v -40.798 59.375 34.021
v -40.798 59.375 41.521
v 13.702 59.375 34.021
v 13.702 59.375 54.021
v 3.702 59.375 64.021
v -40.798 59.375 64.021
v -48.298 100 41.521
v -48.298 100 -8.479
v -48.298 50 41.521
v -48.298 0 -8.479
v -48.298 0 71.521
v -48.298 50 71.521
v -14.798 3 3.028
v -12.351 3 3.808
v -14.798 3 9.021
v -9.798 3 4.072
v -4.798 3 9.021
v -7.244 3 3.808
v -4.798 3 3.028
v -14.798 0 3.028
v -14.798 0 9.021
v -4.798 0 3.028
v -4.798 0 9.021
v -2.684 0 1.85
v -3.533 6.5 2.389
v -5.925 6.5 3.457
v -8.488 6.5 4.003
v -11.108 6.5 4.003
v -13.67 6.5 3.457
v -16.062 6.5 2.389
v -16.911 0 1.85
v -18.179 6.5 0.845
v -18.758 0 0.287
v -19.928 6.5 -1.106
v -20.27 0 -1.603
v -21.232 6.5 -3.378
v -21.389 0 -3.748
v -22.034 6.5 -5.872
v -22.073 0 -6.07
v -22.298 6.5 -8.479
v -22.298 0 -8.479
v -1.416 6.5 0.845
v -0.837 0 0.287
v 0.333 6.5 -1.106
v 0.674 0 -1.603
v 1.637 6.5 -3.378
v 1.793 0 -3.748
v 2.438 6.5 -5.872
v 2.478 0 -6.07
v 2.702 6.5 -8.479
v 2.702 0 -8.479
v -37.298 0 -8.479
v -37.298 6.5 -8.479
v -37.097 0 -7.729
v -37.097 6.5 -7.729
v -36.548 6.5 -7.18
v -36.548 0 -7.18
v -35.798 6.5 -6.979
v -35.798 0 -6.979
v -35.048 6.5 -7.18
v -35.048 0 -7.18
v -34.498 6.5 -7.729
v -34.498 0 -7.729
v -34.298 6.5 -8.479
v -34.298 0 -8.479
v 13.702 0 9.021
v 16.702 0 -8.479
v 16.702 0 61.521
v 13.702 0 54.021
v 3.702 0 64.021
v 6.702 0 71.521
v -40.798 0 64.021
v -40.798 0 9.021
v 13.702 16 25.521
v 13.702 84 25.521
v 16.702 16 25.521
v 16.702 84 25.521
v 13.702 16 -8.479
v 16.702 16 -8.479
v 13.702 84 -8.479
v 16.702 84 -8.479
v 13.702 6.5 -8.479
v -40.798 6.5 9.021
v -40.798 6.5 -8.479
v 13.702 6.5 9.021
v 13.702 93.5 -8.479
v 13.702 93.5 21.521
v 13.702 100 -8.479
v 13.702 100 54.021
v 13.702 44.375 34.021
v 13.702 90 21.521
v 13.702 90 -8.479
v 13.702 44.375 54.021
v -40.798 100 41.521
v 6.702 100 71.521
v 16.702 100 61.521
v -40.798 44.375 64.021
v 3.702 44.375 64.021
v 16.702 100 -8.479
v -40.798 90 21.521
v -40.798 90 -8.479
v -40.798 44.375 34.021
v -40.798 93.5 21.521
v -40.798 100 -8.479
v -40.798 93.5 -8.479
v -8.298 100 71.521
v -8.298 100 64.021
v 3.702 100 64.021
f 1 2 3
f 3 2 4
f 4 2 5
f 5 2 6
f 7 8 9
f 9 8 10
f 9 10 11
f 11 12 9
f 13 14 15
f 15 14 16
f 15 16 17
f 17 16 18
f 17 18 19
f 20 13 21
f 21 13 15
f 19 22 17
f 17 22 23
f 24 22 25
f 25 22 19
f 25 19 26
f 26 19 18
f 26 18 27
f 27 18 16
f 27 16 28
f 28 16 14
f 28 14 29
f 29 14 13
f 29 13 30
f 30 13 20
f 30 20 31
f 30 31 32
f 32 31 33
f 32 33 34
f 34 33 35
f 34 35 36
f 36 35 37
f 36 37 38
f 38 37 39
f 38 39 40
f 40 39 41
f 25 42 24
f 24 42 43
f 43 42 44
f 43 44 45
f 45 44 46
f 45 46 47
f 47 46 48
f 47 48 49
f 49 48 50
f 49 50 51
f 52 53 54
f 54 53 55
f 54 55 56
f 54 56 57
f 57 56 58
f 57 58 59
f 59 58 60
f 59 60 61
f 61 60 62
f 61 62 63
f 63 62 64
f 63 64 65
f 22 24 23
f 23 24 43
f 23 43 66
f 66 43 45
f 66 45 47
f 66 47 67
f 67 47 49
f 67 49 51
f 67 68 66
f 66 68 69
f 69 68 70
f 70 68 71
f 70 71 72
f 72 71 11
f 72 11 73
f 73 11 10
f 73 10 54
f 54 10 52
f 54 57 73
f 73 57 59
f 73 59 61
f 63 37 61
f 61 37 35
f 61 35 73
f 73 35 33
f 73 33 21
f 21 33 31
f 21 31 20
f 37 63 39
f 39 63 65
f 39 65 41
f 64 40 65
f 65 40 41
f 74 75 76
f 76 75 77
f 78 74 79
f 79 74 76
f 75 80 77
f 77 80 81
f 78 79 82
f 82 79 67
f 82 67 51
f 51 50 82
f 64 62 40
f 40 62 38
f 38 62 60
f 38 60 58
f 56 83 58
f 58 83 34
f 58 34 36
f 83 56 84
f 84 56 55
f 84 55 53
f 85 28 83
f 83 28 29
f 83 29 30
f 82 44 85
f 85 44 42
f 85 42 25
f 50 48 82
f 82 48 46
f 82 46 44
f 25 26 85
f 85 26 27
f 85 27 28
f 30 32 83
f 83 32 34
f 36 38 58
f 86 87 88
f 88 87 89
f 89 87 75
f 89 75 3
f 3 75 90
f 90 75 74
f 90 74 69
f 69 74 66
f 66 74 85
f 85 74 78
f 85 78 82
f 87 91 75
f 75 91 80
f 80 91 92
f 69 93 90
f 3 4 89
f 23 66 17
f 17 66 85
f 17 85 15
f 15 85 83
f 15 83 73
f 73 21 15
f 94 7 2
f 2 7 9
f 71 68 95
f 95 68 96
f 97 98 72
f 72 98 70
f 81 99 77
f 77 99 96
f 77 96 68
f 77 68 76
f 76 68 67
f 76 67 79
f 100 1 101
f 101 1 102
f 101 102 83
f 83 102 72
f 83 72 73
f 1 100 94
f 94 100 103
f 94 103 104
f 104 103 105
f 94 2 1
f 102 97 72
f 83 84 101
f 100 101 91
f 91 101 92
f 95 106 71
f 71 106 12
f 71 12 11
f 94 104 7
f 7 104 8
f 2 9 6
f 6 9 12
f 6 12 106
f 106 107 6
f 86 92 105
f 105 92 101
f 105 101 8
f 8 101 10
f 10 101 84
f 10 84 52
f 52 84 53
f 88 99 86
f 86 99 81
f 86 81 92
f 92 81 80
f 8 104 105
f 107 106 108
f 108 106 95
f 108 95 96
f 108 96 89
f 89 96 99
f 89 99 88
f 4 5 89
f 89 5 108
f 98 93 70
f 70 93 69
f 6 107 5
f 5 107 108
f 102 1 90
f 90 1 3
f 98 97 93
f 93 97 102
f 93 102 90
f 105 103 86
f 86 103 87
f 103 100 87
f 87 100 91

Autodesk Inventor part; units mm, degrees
ref_plane "YZ Plane" through (0, 0, 0) normal (1, 0, 0) x (0, 1, 0)
ref_plane "XZ Plane" through (0, 0, 0) normal (0, 1, 0) x (-1, 0, 0)
ref_plane "XY Plane" through (0, 0, 0) normal (0, 0, 1) x (1, 0, 0)
sketch "Sketch1" plane through (0, 0, 0) normal (0, 1, 0) x (-1, 0, 0)
  line L0 (48.2977, 71.5211) -> (-16.7023, 71.5211)
  line L1 (-16.7023, 71.5211) -> (-16.7023, -8.4789)
  line L2 (-16.7023, -8.4789) -> (48.2977, -8.4789)
  line L3 (48.2977, -8.4789) -> (48.2977, 71.5211)
  arc A0 (22.2975, -8.4789) -> (-2.7023, -8.4789) centre (9.7976, -8.4281) ccw
  line L4 (-16.7023, -8.4789) -> (-13.7023, -8.4789)
  line L5 (-13.7023, -8.4789) -> (-13.7023, 71.5211)
  line L6 (-13.7023, 71.5211) -> (-16.7023, 71.5211)
  line L7 (-16.7023, 71.5211) -> (-16.7023, -8.4789)
  line L8 (48.2977, -8.4789) -> (40.7977, -8.4789)
  line L9 (40.7977, -8.4789) -> (40.7977, 71.5211)
  line L10 (40.7977, 71.5211) -> (48.2977, 71.5211)
  line L11 (48.2977, 71.5211) -> (48.2977, -8.4789)
  line L12 (-13.7023, -8.4789) -> (40.7977, -8.4789)
  line L13 (40.7977, -8.4789) -> (40.7977, 9.0211)
  line L14 (40.7977, 9.0211) -> (-13.7023, 9.0211)
  line L15 (-13.7023, 9.0211) -> (-13.7023, -8.4789)
  line L16 (-13.7023, 71.5211) -> (40.7977, 71.5211)
  line L17 (40.7977, 71.5211) -> (40.7977, 64.0211)
  line L18 (40.7977, 64.0211) -> (-13.7023, 64.0211)
  line L19 (-13.7023, 64.0211) -> (-13.7023, 71.5211)
  line L20 (-16.7023, 61.5211) -> (-6.7023, 71.5211)
  line L21 (-16.7023, 61.5211) -> (-16.7023, 71.5211)
  line L22 (-6.7023, 71.5211) -> (-13.7023, 64.5211)
  line L23 (-13.7023, 64.0211) -> (-13.7023, 64.5211)
  line L24 (-6.7023, 71.5211) -> (40.7977, 71.5211)
  line L25 (40.7977, 64.0211) -> (-13.7023, 64.0211)
  line L26 (-13.7023, 64.5211) -> (-13.7023, 64.0211)
  line L27 (-13.7023, 64.5211) -> (-6.7023, 71.5211)
  line L28 (-13.7023, 54.0211) -> (-3.7023, 64.0211)
  point P0 (0, 0)
  dimension "d0" = 80
  dimension "d1" = 65
  dimension "d3" = 14
  dimension "d4" = 12.5
  dimension "d5" = 7.5
  dimension "d6" = 3
  dimension "d7" = 17.5
  dimension "d8" = 7.5
  dimension "d9" = 10
  dimension "d10" = 10
  dimension "d48" = 10
  dimension "d49" = 10
extrude "Extrusion1" add sketch "Sketch1" along normal blind 100 contours L3 L2 L9 L0 | L9 L18 L5 L20 L0 | L2 A0 L5 L14 L9 | L5 L2 L1 L20
sketch "Sketch2" plane through (-22.2975, 0, -8.4789) normal (0, 0, -1) x (-1, 0, 0)
  line L0 (18.5002, 0) -> (18.5002, 100) projected
  line L1 (18.5002, 100) -> (-35.9998, 100)
  line L2 (-35.9998, 100) -> (-35.9998, 6.5)
  line L3 (-35.9998, 6.5) -> (18.5002, 6.5)
  line L4 (18.5002, 6.5) -> (18.5002, 100)
  point P0 (-22.2975, 0)
  dimension "d13" = 93.5
  dimension "d14" = 54.5
extrude "Extrusion2" cut sketch "Sketch2" against normal blind 30
sketch "Sketch3" plane through (-40.7977, 0, 9.0211) normal (0, 0, 1) x (1, 0, 0)
  line L0 (54.5, 6.5) -> (0, 6.5) projected
  line L1 (26.0002, 6.5) -> (36, 6.5)
  line L2 (18.5002, 6.5) -> (18.5002, 0) projected
  line L3 (43.5, 0) -> (43.5, 6.5) projected
  line L4 (0, 0) -> (54.5, 0) projected
  line L5 (36, 0) -> (26.0002, 0)
  line L6 (26.0002, 0) -> (26.0002, 3)
  line L7 (26.0002, 3) -> (36, 3)
  line L8 (36, 3) -> (36, 0)
  point P0 (40.7977, 0)
  dimension "d43" = 7.5
  dimension "d44" = 7.5
  dimension "d45" = 3
sketch "Sketch4" plane through (16.7023, 0, 61.5211) normal (1, 0, 0) x (0, 0, -1)
  line L0 (70, 100) -> (70, 6.5) projected
  line L1 (70, 84) -> (36, 84)
  line L2 (36, 84) -> (36, 16)
  line L3 (36, 16) -> (70, 16)
  line L4 (70, 16) -> (70, 84)
  line L5 (0, 0) -> (70, 0) projected
  line L6 (0, 100) -> (70, 100) projected
  point P0 (61.5211, 0)
  dimension "d22" = 34
  dimension "d23" = 16
  dimension "d24" = 16
  dimension "d25" = 68
extrude "Extrusion4" cut sketch "Sketch4" against normal blind 30
sketch "Sketch5" plane through (0, 0, 0) normal (0, -1, 0) x (1, 0, 0)
  line L0 (-40.7977, -8.4789) -> (-22.2975, -8.4789) projected
  arc A0 (-37.2975, -8.4789) -> (-34.2975, -8.4789) centre (-35.7975, -8.4789) ccw
  arc A1 (-34.2975, -8.4789) -> (-37.2975, -8.4789) centre (-35.7975, -8.4789) ccw
  point P0 (0, 0)
  dimension "d28" = 15
  dimension "d29" = 1.5
  dimension "d30" = 0
  dimension "d31" = 1.5
extrude "Extrusion5" cut sketch "Sketch5" against normal blind 30 contours A1 L0
sketch "Sketch7" plane through (-48.2977, 0, 71.5211) normal (0, 0, 1) x (1, 0, 0)
  line L0 (0, 100) -> (55, 100) projected
  line L1 (0, 100) -> (40, 100)
  line L2 (40, 100) -> (0, 50)
  line L3 (0, 50) -> (0, 100)
  line L4 (65, 100) -> (65, 0) projected
  point P0 (48.2977, 0)
  dimension "d39" = 40
  dimension "d40" = 25
  dimension "d41" = 50
extrude "Extrusion6" cut sketch "Sketch3" against normal blind 30 contours L4 L6 L7 L8
sketch "Sketch8" plane through (0, 100, 0) normal (0, 1, 0) x (1, 0, 0)
  line L0 (13.7023, 8.4789) -> (13.7023, -64.0211) projected
  line L1 (13.7023, -54.0211) -> (3.7023, -64.0211)
  line L2 (3.7023, -64.0211) -> (13.7023, -64.0211)
  line L3 (13.7023, -64.0211) -> (13.7023, -54.0211)
  point P0 (0, 0)
  dimension "d50" = 10
  dimension "d51" = 10
extrude "Extrusion7" add sketch "Sketch8" against normal up to surface (100 mm away)
extrude "Extrusion8" cut sketch "Sketch7" against normal blind 30
sketch "Sketch9" plane through (13.7023, 0, 9.0211) normal (-1, 0, 0) x (0, 0, 1)
  line L0 (32.5, 59.375) -> (55, 59.375) projected
  line L1 (45, 0) -> (45, 100) projected
  line L2 (45, 59.375) -> (25, 59.375)
  line L3 (25, 59.375) -> (25, 44.375)
  line L4 (25, 44.375) -> (45, 44.375)
  line L5 (45, 44.375) -> (45, 59.375)
  point P0 (-9.0211, 0)
  dimension "d56" = 15
  dimension "d57" = 20
extrude "Extrusion9" add sketch "Sketch9" along normal up to next
sketch "Sketch10" plane through (-40.7977, 44.375, 54.0211) normal (0, 0, 1) x (1, 0, 0)
  line L0 (54.5, 15) -> (0, 15) projected
  line L1 (55.1529, 0) -> (0.519, 0)
  line L2 (0.519, 0) -> (0.519, 15)
  line L3 (0.519, 15) -> (55.1529, 15)
  line L4 (55.1529, 15) -> (55.1529, 0)
  line L5 (54.5, 0) -> (0, 0) projected
  line L6 (0, 15) -> (27.836, 15)
  line L7 (27.836, 15) -> (27.836, 0)
  line L8 (27.836, 0) -> (0, 0)
  line L9 (0, 0) -> (0, 15)
  point P0 (40.7977, -44.375)
extrude "Extrusion10" add sketch "Sketch10" along normal up to next
sketch "Sketch11" plane through (13.7023, 0, 9.0211) normal (-1, 0, 0) x (0, 0, 1)
  line L0 (-17.5, 84) -> (-17.5, 100) projected
  line L1 (-17.5, 90) -> (12.5, 90)
  line L2 (12.5, 90) -> (12.5, 93.5)
  line L3 (12.5, 93.5) -> (-17.5, 93.5)
  line L4 (-17.5, 93.5) -> (-17.5, 90)
  line L5 (-17.5, 100) -> (45, 100) projected
  point P0 (-9.0211, 0)
  dimension "d62" = 3.5
  dimension "d63" = 30
  dimension "d64" = 10
extrude "Extrusion11" add sketch "Sketch11" along normal up to next
equation "\"d8\" = d5"
equation "\"d49\" = d48"
equation "\"d44\" = d43"
equation "\"d24\" = d23"
equation "\"d31\" = d29"
properties part number "Base"
